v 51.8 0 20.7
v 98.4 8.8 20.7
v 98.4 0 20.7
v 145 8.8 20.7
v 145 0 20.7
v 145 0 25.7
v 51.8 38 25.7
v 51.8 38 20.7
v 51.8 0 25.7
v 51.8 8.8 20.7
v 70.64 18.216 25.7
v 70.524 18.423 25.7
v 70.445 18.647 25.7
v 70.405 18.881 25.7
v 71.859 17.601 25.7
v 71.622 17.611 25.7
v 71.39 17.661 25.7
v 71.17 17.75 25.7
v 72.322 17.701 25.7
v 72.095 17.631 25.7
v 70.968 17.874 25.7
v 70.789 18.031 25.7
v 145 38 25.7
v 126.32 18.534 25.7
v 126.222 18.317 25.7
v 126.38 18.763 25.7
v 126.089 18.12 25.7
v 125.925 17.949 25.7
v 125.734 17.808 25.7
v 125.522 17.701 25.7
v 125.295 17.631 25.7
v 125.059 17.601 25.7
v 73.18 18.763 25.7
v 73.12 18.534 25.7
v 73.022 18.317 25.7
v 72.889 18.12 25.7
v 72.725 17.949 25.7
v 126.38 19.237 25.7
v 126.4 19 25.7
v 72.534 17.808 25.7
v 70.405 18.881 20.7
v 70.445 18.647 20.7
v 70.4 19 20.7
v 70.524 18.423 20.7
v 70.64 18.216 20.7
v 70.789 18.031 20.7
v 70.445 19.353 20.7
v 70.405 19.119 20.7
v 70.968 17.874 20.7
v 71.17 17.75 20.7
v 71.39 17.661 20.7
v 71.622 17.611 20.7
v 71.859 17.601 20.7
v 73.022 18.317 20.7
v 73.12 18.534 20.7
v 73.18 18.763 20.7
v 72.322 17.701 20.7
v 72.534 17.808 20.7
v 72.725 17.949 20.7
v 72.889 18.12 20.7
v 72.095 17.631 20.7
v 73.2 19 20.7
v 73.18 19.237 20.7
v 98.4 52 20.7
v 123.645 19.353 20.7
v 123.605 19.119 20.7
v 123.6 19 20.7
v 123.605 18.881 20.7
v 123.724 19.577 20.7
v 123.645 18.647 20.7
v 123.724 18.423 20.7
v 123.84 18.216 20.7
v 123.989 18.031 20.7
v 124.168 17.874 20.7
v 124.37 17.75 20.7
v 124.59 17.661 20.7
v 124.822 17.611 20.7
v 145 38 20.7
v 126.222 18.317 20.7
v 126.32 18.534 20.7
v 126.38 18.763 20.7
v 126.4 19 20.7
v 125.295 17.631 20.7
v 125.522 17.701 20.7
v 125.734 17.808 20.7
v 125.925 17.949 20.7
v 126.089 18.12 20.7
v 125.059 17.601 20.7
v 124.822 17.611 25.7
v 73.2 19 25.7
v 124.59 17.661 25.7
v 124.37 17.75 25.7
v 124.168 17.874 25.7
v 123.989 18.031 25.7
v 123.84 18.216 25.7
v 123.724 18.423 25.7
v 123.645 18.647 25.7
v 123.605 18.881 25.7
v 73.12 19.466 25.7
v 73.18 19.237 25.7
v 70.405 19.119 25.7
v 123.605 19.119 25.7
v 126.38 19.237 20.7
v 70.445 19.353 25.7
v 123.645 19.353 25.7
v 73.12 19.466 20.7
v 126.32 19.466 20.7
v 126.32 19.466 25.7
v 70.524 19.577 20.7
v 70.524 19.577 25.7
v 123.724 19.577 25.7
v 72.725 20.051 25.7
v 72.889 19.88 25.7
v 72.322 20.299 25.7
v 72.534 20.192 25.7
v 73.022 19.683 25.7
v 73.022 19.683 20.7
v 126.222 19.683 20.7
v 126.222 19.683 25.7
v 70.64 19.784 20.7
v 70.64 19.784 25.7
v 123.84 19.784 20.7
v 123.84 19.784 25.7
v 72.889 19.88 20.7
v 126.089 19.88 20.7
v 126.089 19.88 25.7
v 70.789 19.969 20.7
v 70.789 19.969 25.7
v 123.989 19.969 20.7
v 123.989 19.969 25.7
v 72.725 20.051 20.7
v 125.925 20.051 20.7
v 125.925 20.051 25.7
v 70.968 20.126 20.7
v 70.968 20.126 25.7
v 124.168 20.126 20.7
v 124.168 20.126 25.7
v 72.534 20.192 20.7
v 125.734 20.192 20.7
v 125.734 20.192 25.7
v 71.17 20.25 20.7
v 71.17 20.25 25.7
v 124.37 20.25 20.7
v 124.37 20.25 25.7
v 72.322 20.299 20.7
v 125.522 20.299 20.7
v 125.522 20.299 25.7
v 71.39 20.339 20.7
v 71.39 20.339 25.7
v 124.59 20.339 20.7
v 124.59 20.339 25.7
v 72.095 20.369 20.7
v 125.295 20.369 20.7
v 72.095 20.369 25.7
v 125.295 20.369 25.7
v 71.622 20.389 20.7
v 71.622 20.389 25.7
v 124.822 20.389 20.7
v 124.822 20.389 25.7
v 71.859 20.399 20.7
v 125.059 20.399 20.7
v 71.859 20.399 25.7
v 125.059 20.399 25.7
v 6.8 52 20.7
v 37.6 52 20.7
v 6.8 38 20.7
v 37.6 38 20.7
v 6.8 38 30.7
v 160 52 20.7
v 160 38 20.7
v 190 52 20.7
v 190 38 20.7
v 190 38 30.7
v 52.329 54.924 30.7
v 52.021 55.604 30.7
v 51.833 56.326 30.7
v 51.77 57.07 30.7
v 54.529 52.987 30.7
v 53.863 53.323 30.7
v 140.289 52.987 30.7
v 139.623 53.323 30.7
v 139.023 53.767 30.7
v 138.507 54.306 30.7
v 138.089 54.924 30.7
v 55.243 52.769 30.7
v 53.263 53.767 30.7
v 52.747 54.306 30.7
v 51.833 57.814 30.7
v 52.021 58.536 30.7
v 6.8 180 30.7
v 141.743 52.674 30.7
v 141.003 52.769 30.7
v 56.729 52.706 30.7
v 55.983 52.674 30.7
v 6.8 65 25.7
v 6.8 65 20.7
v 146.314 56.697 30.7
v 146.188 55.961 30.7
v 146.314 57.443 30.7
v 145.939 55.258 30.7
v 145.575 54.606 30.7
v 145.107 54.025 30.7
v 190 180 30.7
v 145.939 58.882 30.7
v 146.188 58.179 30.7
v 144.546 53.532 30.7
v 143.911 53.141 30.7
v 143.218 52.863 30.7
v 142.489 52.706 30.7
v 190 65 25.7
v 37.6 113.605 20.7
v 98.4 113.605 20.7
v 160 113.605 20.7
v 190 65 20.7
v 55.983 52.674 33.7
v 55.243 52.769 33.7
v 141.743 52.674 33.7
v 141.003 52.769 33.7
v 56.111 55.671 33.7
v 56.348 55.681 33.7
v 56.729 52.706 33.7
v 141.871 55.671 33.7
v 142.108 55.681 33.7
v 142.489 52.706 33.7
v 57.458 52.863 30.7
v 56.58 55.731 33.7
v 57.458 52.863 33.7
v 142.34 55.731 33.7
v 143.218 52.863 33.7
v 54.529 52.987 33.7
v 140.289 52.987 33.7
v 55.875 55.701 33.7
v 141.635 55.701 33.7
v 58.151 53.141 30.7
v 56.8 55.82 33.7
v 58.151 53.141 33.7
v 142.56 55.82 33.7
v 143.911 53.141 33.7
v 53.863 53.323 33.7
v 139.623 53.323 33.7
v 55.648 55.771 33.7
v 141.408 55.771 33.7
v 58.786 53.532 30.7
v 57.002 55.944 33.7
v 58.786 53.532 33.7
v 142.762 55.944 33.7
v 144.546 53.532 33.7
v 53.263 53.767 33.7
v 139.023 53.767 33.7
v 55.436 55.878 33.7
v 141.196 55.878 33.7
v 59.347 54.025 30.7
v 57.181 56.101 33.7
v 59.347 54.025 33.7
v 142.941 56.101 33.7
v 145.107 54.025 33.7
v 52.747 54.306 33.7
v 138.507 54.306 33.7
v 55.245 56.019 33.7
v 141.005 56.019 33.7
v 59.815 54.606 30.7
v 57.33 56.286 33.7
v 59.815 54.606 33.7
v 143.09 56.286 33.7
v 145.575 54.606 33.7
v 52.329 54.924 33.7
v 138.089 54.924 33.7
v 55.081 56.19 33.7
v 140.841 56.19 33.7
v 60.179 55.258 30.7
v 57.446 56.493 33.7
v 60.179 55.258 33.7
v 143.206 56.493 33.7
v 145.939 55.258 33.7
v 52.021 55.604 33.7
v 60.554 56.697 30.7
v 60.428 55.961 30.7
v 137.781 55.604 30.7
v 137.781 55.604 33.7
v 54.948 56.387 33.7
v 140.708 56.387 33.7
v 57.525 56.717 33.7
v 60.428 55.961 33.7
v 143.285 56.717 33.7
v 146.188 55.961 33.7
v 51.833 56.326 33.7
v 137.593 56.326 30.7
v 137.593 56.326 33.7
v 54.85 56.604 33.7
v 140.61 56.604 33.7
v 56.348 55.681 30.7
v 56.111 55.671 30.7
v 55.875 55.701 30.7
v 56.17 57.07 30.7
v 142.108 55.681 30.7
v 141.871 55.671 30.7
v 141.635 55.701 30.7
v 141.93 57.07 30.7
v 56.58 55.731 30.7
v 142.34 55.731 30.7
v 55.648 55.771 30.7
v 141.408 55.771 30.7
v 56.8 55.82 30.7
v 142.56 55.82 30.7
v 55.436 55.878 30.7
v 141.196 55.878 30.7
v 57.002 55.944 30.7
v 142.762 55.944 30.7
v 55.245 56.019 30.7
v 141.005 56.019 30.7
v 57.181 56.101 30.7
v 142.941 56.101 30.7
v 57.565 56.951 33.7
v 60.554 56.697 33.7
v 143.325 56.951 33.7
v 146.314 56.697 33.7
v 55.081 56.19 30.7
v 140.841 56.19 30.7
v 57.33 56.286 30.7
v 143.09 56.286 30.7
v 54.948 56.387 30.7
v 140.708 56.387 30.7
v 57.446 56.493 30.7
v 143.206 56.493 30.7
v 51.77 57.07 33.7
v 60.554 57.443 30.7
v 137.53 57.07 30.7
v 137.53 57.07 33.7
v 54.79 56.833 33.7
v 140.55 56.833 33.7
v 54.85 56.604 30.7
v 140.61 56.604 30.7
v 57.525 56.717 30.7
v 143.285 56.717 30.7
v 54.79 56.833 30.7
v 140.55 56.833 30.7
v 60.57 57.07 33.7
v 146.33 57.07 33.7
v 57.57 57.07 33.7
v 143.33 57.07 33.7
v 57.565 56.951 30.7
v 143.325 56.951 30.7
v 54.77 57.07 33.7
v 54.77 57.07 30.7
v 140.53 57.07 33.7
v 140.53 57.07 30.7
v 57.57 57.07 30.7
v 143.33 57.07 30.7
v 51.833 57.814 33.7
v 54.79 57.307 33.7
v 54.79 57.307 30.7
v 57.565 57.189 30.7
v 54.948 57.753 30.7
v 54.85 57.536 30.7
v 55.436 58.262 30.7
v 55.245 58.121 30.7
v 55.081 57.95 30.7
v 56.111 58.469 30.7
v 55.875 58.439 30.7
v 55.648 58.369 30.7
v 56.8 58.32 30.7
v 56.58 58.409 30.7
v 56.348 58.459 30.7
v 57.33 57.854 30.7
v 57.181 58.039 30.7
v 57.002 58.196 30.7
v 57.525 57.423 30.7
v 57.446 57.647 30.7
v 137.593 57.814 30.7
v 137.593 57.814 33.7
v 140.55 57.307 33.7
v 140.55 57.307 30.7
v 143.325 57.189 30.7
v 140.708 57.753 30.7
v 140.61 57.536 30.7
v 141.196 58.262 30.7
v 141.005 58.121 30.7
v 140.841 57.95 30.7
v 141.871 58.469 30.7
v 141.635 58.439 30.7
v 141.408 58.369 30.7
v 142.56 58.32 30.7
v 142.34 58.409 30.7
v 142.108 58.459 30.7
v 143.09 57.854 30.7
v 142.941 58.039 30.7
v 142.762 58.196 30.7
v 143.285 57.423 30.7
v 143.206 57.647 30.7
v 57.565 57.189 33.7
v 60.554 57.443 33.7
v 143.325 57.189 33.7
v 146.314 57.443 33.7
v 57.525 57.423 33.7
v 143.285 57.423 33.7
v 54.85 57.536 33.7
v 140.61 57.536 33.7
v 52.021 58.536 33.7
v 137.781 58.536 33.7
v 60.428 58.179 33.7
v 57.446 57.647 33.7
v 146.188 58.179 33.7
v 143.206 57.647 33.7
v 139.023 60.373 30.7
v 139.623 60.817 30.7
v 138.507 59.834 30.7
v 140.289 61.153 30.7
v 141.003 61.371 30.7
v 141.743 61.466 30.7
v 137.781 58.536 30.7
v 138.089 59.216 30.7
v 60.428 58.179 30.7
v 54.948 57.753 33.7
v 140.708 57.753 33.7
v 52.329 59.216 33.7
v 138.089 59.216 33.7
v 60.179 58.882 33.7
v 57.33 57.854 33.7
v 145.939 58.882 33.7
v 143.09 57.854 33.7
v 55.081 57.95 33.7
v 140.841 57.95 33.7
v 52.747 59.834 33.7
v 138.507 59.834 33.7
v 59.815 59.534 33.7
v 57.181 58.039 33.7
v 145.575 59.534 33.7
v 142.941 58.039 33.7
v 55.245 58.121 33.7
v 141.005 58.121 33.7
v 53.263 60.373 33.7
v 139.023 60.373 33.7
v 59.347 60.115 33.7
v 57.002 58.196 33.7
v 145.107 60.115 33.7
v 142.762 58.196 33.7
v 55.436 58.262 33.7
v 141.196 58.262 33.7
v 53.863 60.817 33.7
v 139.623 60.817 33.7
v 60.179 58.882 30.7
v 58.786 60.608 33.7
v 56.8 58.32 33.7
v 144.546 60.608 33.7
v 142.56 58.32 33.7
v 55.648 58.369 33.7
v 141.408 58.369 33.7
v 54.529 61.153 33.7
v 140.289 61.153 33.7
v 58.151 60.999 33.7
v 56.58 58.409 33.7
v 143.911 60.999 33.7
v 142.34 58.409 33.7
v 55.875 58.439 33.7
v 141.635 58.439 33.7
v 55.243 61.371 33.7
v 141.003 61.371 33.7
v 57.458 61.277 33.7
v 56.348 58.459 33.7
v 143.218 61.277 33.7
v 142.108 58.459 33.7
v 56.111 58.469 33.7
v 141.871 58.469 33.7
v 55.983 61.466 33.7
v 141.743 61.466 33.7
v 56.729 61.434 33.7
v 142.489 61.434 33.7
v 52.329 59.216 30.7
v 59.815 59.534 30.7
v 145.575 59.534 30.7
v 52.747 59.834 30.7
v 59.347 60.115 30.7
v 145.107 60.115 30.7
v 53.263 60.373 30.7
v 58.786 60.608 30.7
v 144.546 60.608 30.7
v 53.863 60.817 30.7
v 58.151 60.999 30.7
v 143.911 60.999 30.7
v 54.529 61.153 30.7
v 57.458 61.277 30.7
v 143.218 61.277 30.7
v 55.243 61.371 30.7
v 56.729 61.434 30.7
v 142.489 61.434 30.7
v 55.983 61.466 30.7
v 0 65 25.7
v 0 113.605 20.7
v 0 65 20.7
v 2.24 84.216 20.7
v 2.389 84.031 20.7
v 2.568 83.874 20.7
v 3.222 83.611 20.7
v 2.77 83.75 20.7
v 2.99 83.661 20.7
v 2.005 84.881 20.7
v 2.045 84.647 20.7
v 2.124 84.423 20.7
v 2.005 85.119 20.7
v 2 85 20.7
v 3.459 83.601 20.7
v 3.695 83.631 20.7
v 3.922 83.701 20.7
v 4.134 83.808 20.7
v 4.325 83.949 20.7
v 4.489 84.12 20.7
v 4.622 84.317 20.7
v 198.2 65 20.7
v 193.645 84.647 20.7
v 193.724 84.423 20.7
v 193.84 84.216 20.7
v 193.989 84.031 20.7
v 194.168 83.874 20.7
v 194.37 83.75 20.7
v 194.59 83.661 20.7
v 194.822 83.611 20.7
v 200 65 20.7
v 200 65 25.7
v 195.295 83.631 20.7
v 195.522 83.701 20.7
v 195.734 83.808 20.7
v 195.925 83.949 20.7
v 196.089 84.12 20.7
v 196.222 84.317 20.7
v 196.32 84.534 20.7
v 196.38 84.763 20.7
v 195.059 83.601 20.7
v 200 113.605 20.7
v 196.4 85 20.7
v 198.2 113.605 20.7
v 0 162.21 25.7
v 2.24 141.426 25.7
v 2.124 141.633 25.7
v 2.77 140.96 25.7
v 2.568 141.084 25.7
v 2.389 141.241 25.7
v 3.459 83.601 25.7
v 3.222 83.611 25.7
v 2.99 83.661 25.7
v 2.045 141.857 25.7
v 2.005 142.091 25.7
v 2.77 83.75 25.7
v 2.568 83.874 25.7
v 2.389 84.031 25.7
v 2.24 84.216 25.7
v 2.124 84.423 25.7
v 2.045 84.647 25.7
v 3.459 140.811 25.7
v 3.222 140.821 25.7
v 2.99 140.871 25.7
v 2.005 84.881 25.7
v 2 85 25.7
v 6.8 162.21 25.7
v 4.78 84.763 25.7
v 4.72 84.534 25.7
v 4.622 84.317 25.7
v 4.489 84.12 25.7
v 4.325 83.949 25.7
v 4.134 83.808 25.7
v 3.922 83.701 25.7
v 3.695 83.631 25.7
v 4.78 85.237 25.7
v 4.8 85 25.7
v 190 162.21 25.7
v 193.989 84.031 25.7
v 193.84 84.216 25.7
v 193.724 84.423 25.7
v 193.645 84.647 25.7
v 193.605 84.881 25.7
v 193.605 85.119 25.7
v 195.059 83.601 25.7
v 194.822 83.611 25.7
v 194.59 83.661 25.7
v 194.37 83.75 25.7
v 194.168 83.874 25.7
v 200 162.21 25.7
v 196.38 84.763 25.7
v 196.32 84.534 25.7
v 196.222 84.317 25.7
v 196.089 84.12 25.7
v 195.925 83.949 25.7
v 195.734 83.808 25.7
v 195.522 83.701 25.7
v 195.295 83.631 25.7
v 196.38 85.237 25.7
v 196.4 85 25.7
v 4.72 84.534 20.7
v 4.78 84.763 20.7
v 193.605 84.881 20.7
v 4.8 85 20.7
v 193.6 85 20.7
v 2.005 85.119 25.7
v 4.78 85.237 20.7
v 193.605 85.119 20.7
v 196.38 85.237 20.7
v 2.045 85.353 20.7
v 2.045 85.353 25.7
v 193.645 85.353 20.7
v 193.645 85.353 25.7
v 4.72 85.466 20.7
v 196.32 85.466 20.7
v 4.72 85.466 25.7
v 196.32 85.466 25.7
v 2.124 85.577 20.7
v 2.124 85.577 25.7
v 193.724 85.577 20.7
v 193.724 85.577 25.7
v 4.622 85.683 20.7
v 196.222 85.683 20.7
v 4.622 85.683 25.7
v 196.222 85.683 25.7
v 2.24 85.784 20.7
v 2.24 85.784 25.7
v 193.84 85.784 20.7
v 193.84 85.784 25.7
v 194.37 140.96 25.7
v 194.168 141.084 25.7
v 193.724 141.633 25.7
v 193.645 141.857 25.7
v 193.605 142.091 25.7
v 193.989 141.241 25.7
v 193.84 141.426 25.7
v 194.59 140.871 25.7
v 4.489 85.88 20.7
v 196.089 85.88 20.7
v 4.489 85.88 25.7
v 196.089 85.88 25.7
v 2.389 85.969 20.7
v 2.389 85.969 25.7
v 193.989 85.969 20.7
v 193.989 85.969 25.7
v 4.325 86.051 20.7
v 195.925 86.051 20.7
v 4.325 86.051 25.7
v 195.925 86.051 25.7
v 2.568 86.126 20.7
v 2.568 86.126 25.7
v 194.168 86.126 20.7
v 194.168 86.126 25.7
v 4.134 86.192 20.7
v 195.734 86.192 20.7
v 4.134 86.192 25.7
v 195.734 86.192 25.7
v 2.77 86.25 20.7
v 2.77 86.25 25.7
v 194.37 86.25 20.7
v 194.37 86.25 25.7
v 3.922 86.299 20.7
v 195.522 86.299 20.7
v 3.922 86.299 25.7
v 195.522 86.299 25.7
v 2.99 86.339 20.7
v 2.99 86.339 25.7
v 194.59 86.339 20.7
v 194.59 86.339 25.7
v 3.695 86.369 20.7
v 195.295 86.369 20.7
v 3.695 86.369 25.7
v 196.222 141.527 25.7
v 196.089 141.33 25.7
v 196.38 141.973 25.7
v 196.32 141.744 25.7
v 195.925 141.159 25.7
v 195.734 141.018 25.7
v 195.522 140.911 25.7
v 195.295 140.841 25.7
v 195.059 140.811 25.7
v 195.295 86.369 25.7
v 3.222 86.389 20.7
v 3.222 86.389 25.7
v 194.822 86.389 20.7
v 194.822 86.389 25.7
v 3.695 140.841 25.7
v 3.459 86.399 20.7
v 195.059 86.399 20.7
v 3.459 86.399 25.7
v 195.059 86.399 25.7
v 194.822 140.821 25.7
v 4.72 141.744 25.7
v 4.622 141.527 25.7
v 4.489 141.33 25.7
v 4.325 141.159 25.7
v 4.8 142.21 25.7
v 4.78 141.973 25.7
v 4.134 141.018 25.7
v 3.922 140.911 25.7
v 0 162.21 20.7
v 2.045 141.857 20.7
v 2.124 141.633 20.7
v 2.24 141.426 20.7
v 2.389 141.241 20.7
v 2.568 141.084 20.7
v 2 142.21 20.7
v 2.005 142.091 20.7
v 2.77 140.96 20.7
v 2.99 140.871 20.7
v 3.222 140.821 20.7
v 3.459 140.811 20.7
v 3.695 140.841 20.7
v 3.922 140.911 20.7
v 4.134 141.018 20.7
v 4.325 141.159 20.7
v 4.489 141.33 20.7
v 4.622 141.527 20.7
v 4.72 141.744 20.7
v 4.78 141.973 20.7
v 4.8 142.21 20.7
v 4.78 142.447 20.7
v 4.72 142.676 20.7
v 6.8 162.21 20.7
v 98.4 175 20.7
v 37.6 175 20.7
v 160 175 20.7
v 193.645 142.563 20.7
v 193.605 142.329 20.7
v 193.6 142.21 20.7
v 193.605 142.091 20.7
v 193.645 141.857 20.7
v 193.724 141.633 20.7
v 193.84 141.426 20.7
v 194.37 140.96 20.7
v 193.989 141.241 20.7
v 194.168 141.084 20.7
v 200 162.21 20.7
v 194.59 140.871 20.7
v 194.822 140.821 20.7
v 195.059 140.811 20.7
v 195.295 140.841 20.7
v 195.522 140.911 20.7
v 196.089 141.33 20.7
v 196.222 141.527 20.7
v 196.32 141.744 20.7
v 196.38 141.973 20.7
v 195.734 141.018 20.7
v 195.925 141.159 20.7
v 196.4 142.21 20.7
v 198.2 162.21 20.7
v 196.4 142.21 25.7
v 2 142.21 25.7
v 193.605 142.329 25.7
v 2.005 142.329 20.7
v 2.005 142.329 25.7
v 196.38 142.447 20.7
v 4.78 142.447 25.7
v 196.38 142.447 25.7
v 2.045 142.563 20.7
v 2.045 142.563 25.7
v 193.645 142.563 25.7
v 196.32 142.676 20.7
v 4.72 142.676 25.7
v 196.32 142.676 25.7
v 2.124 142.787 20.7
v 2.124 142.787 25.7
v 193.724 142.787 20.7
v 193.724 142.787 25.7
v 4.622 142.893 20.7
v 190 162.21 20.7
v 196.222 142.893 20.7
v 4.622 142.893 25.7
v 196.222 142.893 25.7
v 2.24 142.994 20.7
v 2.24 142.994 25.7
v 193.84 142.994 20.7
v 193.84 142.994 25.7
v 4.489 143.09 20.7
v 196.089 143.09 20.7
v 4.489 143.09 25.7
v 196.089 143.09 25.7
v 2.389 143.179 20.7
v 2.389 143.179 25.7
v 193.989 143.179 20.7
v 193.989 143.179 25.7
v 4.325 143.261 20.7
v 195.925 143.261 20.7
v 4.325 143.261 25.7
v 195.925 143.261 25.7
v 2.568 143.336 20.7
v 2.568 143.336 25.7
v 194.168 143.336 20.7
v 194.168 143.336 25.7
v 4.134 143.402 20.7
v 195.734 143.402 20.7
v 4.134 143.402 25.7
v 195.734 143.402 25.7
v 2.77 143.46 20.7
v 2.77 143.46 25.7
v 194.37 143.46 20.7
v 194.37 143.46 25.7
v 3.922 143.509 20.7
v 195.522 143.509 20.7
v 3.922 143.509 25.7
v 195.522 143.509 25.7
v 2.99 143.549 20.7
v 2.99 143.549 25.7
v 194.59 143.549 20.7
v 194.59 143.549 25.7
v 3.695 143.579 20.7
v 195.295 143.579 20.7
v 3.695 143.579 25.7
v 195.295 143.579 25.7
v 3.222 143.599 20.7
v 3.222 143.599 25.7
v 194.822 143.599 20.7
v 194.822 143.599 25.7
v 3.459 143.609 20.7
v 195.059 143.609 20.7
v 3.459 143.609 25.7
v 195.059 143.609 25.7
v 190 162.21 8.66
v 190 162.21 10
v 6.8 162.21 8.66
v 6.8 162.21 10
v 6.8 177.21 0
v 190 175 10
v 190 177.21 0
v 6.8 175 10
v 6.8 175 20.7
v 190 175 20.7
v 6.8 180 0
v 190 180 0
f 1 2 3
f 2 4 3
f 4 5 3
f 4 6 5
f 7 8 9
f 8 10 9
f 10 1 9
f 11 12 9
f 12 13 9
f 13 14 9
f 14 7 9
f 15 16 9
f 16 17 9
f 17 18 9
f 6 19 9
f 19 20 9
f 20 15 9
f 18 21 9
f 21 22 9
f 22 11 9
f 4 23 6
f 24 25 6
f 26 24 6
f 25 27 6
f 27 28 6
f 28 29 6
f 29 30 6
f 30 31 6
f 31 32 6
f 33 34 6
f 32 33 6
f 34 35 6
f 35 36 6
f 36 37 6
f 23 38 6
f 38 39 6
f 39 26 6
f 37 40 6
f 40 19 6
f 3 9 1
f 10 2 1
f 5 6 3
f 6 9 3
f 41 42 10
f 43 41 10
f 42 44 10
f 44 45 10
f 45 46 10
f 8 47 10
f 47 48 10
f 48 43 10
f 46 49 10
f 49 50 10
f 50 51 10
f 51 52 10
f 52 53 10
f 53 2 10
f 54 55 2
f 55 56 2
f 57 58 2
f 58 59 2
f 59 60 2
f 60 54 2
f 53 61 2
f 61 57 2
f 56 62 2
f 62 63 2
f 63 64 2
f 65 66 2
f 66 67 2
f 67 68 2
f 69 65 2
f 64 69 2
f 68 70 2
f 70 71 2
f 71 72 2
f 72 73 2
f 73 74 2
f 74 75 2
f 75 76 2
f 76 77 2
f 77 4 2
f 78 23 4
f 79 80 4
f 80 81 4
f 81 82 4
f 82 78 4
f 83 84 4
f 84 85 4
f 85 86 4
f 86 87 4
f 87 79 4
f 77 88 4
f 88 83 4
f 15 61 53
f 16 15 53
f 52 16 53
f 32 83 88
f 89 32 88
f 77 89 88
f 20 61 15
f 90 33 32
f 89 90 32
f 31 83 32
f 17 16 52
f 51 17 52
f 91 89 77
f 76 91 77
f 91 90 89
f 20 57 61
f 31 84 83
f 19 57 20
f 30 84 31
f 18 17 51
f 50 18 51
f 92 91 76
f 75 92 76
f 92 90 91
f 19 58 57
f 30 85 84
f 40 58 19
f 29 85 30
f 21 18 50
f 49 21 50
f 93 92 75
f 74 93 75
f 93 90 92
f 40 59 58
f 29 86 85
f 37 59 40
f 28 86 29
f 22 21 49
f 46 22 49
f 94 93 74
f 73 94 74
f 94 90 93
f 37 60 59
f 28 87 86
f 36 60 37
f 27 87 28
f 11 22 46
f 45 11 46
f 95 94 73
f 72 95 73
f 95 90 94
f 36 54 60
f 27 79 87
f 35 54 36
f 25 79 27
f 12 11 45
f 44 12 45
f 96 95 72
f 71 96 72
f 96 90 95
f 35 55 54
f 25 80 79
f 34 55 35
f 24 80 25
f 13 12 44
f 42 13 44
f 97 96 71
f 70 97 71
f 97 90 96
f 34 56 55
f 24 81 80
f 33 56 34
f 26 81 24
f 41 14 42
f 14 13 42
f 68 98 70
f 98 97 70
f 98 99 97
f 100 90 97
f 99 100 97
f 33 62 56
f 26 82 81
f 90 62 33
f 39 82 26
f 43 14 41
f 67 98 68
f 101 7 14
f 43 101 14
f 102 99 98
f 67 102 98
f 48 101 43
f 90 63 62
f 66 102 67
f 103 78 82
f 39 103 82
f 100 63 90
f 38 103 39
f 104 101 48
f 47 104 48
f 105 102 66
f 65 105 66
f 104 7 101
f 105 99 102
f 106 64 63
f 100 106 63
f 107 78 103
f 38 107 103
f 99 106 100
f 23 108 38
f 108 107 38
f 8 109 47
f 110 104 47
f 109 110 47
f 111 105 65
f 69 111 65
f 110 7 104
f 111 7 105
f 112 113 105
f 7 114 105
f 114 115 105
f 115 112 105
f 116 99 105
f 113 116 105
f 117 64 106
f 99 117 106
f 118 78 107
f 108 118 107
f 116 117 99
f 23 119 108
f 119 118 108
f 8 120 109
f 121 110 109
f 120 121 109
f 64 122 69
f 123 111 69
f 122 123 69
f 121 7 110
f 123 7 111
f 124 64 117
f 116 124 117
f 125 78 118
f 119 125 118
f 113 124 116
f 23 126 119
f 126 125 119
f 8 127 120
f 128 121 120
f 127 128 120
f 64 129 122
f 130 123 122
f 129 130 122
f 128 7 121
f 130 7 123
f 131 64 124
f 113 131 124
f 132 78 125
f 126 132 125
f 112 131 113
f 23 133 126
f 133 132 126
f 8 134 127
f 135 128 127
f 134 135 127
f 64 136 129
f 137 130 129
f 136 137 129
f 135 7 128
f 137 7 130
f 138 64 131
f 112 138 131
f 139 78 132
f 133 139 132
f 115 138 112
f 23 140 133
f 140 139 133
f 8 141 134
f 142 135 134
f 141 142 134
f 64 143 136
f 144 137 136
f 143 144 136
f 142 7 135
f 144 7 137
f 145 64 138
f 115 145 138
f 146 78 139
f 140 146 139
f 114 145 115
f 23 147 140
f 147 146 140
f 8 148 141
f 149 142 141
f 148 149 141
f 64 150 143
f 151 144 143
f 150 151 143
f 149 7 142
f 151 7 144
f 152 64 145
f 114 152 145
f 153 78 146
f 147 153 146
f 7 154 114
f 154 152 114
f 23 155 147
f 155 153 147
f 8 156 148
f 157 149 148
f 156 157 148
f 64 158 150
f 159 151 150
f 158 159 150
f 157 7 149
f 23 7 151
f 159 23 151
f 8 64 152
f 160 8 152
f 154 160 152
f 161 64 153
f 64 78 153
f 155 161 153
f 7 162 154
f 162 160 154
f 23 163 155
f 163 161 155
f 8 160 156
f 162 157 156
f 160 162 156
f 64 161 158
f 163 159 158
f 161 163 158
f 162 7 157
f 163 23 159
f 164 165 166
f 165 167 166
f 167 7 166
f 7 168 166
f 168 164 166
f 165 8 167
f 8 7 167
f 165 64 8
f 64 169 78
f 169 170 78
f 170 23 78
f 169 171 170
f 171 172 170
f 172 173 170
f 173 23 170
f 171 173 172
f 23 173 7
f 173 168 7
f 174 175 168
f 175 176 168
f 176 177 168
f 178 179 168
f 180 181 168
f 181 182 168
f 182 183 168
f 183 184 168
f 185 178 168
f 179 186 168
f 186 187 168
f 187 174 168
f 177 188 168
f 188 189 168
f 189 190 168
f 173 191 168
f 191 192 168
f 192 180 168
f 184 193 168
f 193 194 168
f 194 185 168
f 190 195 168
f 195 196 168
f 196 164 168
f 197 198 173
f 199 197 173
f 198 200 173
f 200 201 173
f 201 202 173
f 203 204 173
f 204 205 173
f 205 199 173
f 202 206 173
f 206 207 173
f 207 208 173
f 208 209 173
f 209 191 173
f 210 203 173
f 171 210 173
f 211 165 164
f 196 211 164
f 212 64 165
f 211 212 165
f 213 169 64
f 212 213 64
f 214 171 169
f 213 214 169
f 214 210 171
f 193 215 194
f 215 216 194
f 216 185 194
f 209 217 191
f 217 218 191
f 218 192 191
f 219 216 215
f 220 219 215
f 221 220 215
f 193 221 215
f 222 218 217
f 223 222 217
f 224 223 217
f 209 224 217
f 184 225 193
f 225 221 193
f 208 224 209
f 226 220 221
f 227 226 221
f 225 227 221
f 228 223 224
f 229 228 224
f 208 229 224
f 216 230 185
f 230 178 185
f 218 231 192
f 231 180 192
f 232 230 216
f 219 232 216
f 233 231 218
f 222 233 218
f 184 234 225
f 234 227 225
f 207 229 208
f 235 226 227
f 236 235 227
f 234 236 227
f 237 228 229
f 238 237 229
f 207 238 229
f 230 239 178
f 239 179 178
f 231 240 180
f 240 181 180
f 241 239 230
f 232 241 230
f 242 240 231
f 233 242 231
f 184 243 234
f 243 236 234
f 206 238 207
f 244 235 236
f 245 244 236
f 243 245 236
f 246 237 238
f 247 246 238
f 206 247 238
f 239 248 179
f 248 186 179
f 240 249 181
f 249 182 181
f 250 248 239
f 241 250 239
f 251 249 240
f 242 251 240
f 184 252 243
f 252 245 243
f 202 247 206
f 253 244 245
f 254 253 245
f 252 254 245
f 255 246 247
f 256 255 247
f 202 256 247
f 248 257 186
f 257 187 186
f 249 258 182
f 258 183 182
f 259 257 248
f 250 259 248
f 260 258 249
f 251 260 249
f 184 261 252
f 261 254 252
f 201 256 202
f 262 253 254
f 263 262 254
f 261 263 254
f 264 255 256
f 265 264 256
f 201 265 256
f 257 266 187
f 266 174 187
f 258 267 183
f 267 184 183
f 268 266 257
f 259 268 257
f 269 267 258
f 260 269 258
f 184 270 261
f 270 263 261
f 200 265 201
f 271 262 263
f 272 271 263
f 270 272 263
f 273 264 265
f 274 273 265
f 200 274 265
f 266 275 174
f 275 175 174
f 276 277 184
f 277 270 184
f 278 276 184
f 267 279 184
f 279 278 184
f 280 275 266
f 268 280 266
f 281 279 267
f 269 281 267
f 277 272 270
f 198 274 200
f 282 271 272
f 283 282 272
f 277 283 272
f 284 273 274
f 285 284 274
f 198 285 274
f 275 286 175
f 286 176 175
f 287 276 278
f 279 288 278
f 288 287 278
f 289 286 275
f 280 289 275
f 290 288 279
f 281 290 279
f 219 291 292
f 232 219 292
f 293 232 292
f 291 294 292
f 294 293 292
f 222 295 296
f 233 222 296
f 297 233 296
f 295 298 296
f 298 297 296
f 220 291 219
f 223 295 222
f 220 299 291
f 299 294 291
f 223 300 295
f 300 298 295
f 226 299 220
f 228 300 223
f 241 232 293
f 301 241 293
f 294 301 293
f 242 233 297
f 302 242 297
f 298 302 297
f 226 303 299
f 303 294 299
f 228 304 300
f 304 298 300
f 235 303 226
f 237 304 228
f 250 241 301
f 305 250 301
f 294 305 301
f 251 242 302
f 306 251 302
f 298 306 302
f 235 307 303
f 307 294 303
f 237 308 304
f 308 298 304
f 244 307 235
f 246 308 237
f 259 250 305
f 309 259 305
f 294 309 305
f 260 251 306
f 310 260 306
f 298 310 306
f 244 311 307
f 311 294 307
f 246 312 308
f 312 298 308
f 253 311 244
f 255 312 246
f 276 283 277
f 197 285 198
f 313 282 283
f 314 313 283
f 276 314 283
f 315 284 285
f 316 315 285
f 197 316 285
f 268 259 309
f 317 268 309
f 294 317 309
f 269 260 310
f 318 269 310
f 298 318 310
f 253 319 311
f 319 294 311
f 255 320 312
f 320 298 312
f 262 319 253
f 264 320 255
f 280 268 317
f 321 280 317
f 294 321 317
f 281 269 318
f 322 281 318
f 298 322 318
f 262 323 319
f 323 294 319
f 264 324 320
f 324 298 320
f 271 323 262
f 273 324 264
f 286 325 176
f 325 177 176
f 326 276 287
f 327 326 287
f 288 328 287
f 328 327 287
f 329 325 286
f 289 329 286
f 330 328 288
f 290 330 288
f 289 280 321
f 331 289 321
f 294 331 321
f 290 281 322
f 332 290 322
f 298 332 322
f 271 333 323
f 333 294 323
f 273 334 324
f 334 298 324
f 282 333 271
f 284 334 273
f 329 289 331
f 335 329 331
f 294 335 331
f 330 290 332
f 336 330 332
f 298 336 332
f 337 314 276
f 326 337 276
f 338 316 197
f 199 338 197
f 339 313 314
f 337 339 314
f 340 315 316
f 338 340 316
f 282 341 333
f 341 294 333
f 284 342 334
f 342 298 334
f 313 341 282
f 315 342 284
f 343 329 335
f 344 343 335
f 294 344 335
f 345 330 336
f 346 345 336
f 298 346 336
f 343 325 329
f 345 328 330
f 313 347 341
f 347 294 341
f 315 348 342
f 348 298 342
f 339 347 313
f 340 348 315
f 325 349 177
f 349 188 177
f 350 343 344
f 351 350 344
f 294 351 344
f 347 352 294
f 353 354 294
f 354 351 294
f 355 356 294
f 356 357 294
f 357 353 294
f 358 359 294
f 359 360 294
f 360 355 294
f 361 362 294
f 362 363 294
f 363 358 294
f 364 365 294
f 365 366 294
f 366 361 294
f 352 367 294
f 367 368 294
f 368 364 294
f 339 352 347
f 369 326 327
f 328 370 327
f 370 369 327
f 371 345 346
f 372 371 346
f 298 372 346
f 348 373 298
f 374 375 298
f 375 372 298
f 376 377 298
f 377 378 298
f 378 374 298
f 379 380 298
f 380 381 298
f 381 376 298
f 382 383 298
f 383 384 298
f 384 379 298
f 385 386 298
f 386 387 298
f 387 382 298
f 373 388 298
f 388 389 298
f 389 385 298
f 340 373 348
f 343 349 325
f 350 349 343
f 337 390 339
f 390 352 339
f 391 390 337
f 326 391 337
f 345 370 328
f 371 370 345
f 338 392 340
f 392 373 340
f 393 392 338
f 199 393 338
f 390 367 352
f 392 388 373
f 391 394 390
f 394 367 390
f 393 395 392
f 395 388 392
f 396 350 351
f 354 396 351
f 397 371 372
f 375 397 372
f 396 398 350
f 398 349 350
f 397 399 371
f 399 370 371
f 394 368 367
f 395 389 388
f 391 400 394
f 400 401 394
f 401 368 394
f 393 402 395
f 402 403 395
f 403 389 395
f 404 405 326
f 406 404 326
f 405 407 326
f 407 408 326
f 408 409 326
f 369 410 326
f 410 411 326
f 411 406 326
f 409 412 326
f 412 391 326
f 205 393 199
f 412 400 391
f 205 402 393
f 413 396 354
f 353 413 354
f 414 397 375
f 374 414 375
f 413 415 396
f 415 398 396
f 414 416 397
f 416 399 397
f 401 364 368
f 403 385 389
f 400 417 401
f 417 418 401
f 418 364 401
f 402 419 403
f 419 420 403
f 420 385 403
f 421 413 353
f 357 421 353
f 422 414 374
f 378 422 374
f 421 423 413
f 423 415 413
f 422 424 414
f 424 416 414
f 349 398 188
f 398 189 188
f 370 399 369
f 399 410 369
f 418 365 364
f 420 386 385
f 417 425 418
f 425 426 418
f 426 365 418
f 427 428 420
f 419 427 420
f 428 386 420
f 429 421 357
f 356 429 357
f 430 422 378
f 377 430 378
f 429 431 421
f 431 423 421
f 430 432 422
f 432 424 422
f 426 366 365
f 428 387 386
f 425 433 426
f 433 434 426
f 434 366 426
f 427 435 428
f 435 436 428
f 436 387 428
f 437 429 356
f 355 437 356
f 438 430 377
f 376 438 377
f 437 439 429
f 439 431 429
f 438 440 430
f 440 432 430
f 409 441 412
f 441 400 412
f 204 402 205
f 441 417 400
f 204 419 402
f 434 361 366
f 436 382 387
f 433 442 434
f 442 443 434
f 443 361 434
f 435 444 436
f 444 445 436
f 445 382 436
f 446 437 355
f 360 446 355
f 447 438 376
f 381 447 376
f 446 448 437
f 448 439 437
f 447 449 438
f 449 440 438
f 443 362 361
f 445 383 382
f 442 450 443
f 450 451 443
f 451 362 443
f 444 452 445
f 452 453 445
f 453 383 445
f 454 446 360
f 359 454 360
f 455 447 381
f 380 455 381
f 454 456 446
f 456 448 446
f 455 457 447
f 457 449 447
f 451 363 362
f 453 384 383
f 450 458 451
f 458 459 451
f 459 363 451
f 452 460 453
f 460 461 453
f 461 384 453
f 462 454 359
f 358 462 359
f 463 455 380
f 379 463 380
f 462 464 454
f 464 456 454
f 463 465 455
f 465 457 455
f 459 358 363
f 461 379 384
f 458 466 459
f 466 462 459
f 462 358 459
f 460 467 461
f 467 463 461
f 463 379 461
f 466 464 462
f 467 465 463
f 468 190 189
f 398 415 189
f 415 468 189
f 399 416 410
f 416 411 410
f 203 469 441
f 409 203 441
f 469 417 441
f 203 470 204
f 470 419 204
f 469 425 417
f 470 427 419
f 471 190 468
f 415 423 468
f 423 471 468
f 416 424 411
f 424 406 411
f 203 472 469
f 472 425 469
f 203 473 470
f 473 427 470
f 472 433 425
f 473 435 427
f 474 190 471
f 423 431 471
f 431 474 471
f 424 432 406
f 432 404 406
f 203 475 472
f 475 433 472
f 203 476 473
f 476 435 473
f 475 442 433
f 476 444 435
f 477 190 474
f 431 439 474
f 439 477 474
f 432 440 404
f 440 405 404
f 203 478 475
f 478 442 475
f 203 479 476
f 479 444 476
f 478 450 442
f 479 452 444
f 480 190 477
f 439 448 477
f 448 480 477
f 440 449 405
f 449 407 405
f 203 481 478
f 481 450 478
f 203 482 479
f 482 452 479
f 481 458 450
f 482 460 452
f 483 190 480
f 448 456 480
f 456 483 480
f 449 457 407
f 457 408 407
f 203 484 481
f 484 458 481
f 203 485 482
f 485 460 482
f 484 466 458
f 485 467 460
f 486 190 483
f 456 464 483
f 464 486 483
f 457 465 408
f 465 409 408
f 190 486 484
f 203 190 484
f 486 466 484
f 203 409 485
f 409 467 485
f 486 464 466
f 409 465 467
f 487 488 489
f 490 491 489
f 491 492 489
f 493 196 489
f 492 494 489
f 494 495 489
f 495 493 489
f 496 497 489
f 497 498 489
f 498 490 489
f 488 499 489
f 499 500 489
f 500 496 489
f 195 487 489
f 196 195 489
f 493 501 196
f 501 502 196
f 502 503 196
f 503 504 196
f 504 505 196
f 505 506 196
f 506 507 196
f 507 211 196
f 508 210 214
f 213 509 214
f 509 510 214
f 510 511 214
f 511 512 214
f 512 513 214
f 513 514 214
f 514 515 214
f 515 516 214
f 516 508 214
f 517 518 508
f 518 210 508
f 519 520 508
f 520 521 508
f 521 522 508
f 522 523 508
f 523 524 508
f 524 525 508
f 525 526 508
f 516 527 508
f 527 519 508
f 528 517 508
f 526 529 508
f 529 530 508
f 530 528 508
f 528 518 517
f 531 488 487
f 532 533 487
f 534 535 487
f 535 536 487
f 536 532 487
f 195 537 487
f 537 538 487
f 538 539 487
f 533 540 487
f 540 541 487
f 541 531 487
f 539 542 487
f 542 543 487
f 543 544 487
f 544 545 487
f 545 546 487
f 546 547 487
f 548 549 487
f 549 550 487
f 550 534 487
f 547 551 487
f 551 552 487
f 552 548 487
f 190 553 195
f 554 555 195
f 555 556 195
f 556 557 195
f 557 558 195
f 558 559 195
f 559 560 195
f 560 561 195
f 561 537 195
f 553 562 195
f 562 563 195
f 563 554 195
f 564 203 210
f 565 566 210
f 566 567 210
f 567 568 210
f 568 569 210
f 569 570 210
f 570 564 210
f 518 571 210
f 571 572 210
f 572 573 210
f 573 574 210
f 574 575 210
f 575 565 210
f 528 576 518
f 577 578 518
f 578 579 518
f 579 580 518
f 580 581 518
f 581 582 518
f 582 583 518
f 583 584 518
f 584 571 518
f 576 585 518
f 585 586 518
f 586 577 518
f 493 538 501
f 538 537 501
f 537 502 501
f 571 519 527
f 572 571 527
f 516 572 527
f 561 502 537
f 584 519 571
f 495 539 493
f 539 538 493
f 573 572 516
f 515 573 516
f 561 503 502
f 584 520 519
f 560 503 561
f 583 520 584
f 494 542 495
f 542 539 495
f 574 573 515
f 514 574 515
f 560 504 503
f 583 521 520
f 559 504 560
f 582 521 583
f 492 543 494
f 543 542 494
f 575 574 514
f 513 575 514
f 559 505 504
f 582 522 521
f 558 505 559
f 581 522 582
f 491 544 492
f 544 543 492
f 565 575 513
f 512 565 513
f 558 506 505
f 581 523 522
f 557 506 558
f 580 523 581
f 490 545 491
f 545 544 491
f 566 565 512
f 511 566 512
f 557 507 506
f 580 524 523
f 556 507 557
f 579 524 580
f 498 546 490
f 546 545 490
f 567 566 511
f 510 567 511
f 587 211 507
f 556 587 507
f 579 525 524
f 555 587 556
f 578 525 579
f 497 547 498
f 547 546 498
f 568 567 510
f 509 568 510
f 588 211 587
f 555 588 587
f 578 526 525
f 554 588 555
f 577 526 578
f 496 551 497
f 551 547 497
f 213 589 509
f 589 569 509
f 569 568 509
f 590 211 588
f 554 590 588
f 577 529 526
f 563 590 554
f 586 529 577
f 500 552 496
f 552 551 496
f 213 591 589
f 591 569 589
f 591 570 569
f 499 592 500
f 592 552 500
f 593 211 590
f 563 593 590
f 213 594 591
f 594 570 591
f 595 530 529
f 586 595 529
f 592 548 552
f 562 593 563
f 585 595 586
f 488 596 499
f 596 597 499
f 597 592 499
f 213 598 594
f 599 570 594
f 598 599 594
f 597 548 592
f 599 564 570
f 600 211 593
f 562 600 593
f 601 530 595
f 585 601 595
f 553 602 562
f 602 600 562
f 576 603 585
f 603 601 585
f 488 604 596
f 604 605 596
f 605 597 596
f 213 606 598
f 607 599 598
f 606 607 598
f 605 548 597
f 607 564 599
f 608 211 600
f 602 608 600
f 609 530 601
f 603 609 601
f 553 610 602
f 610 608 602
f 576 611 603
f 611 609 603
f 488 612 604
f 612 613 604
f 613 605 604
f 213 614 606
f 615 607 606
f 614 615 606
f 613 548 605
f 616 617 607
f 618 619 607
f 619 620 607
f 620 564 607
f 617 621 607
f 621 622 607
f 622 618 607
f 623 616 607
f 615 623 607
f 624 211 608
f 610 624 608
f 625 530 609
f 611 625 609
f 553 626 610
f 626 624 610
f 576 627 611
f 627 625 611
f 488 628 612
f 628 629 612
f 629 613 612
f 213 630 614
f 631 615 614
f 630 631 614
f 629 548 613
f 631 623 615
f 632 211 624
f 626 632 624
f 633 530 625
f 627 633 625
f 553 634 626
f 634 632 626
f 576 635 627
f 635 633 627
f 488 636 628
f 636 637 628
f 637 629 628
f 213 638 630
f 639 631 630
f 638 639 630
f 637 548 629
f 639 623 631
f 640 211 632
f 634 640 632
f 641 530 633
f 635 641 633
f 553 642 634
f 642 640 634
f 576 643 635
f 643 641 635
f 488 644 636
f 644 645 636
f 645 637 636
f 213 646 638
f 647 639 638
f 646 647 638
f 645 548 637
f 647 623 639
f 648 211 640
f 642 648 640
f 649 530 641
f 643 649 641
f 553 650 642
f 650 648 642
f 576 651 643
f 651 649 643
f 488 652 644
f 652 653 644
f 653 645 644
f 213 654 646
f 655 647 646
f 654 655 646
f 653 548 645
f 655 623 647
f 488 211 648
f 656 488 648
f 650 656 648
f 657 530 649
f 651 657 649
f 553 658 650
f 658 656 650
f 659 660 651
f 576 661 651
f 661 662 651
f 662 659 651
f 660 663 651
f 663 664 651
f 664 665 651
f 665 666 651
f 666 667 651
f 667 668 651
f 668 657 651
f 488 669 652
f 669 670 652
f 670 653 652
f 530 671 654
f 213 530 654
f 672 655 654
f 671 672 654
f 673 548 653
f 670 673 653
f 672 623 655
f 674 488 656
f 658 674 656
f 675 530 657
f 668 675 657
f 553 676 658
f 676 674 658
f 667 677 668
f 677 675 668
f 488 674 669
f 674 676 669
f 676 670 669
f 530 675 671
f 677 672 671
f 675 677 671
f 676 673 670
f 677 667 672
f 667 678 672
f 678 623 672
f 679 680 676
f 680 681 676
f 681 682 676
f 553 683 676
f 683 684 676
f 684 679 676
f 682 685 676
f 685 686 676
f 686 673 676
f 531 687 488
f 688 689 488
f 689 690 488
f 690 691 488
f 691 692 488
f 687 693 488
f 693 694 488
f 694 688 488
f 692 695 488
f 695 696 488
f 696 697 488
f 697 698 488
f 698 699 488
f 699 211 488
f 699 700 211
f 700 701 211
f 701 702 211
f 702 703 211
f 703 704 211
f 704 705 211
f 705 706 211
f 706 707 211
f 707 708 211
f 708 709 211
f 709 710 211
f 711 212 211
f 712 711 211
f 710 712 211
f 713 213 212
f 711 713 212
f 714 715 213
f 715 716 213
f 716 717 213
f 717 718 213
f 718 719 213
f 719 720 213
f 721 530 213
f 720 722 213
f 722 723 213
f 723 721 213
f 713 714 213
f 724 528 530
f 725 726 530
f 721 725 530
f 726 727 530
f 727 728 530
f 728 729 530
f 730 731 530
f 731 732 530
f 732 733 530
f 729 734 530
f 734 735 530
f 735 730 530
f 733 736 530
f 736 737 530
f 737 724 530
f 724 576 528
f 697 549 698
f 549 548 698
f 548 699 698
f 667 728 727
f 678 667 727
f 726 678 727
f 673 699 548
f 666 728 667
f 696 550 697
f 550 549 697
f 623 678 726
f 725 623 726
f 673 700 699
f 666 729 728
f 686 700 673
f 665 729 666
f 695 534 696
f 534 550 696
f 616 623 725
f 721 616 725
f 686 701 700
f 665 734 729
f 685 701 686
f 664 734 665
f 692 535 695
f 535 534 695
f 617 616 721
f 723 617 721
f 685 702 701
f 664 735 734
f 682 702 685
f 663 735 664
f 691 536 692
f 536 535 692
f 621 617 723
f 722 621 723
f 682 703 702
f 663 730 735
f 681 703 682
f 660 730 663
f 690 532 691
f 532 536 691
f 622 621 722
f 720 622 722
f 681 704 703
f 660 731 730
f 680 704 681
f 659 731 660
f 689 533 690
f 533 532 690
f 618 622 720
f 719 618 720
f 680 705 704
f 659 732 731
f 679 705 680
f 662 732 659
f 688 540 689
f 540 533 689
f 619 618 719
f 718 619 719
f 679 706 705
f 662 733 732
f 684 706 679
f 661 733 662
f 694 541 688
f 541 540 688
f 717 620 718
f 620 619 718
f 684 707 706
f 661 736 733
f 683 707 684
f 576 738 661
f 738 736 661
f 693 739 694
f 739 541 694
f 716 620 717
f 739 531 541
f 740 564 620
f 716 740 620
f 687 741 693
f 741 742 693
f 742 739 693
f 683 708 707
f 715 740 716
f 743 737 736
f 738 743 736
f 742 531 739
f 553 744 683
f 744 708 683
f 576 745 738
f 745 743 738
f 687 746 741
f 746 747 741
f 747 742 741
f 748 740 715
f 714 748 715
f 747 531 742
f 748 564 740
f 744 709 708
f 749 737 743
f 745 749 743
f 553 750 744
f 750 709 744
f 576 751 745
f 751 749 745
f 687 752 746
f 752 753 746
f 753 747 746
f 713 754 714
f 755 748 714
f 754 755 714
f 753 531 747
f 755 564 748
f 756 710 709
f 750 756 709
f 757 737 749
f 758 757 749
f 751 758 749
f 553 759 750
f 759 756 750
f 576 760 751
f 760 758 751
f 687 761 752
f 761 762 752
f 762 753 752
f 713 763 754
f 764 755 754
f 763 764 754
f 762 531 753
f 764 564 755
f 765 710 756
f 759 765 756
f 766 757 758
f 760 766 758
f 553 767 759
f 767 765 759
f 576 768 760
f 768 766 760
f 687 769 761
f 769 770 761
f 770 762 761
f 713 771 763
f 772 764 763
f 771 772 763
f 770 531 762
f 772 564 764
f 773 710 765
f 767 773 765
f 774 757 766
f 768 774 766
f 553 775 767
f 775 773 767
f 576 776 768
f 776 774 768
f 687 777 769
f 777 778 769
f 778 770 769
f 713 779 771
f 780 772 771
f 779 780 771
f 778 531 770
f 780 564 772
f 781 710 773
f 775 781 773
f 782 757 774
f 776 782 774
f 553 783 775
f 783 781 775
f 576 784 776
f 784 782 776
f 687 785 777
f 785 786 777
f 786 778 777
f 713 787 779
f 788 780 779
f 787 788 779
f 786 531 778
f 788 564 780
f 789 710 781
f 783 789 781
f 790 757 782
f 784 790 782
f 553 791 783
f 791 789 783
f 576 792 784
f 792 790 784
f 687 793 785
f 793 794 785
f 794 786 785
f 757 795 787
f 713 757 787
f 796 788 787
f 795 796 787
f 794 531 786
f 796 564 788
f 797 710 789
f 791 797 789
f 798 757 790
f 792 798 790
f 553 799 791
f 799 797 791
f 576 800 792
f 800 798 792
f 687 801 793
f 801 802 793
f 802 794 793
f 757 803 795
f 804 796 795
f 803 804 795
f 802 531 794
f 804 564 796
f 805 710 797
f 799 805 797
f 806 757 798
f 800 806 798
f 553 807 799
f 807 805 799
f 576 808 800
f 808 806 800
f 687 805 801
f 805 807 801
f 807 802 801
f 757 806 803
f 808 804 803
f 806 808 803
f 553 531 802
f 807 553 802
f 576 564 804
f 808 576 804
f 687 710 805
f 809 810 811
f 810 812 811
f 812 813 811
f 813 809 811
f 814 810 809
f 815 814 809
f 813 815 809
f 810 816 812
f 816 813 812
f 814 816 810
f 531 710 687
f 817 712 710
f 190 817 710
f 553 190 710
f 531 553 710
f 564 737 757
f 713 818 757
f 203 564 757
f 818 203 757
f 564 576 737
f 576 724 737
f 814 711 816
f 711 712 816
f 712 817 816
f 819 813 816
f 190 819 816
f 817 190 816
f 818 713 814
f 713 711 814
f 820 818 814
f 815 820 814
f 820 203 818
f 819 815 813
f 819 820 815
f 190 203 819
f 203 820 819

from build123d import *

# Parameters (mm, degrees)
CROQUIS1_W              = 180
CROQUIS1_H              = 180
SALIENTE_EXTRUIR1_DEPTH = 30.7
CROQUIS2_W              = 180
CROQUIS2_H              = 162.21
CORTAR_EXTRUIR1_DEPTH   = 20.7
CROQUIS3_W              = 10.7
CROQUIS3_H              = 12.79
CORTAR_EXTRUIR2_DEPTH   = 274.7
SALIENTE_EXTRUIR2_DEPTH = 20
CROQUIS5_W              = 10
CROQUIS5_H              = 17.79
CROQUIS5_W_2            = 6.8
CORTAR_EXTRUIR3_DEPTH   = 30.7
CROQUIS6_W              = 6.8
CROQUIS6_H              = 97.21
CROQUIS6_W_2            = 10
CROQUIS6_W_3            = 93.2
CROQUIS6_H_2            = 38
CORTAR_EXTRUIR4_DEPTH   = 5
CHAFL_N1_SIZE           = 15
CHAFL_N1_SIZE2          = 8.660254038
CROQUIS7_R              = 1.4
CORTAR_EXTRUIR5_DEPTH   = 20
CROQUIS8_R              = 4.4
CROQUIS8_R_2            = 1.4
SALIENTE_EXTRUIR3_DEPTH = 3


with BuildPart() as part:
    # Croquis1 → Saliente-Extruir1 (new body)
    with BuildSketch(Plane.XY):
        with Locations((90, 90)):
            Rectangle(CROQUIS1_W, CROQUIS1_H)
    extrude(amount=SALIENTE_EXTRUIR1_DEPTH)

    # Croquis2 → Cortar-Extruir1 (cut)
    with BuildSketch(Plane(origin=(0, 0, 0), x_dir=(-1, 0, 0), z_dir=(0, 0, -1))):
        with Locations((-90, 81.105)):
            Rectangle(CROQUIS2_W, CROQUIS2_H)
    extrude(amount=-CORTAR_EXTRUIR1_DEPTH, mode=Mode.SUBTRACT)

    # Croquis3 → Cortar-Extruir2 (cut)
    with BuildSketch(Plane.ZY):
        with Locations((15.35, 168.605)):
            Rectangle(CROQUIS3_W, CROQUIS3_H)
    extrude(amount=-CORTAR_EXTRUIR2_DEPTH, mode=Mode.SUBTRACT)

    # Croquis4 → Saliente-Extruir2 (add)
    with BuildSketch(Plane(origin=(180, 0, 0), x_dir=(0, 0, -1), z_dir=(1, 0, 0))):
        Polygon((-20.7, 0), (-20.7, 175), (-10, 175), (-10, 162.21), (0, 162.21), (0, 180), (-30.7, 180), (-30.7, 0), align=None)
    extrude(amount=SALIENTE_EXTRUIR2_DEPTH)

    # Croquis5 → Cortar-Extruir3 (cut)
    with BuildSketch(Plane.XY.offset(30.7)):
        Polygon((0, 0), (6.8, 0), (51.8, 0), (51.8, 38), (6.8, 38), (6.8, 65), (0, 65), align=None)
        Polygon((200, 0), (190, 0), (145, 0), (145, 38), (190, 38), (190, 65), (200, 65), align=None)
        with Locations((195, 171.105)):
            Rectangle(CROQUIS5_W, CROQUIS5_H)
        with Locations((3.4, 171.105)):
            Rectangle(CROQUIS5_W_2, CROQUIS5_H)
    extrude(amount=-CORTAR_EXTRUIR3_DEPTH, mode=Mode.SUBTRACT)

    # Croquis6 → Cortar-Extruir4 (cut)
    with BuildSketch(Plane.XY.offset(30.7)):
        with Locations((3.4, 113.605)):
            Rectangle(CROQUIS6_W, CROQUIS6_H)
        with Locations((195, 113.605)):
            Rectangle(CROQUIS6_W_2, CROQUIS6_H)
        with Locations((98.4, 19)):
            Rectangle(CROQUIS6_W_3, CROQUIS6_H_2)
    extrude(amount=-CORTAR_EXTRUIR4_DEPTH, mode=Mode.SUBTRACT)

    # Chaflán1
    chafl_n1_edges = [part.edges().sort_by_distance(p)[0] for p in [
        (98.4, 162.21, 0),
    ]]
    chafl_n1_side = [part.faces().sort_by_distance(p)[0] for p in [
        (98.4, 171.105, 0),
    ]]
    chamfer(chafl_n1_edges, length=CHAFL_N1_SIZE, length2=CHAFL_N1_SIZE2, reference=chafl_n1_side[0])

    # Croquis7 → Cortar-Extruir5 (cut)
    with BuildSketch(Plane.XY.offset(30.7)):
        with Locations((125, 19)):
            Circle(CROQUIS7_R)
        with Locations((71.8, 19)):
            Circle(CROQUIS7_R)
        with Locations((195, 85)):
            Circle(CROQUIS7_R)
        with Locations((195, 142.21)):
            Circle(CROQUIS7_R)
        with Locations(Location((3.4, 142.21, 0), (0, 0, 180))):
            Circle(CROQUIS7_R)
        with Locations(Location((3.4, 85, 0), (0, 0, 180))):
            Circle(CROQUIS7_R)
    extrude(amount=-CORTAR_EXTRUIR5_DEPTH, mode=Mode.SUBTRACT)

    # Croquis8 → Saliente-Extruir3 (add)
    # profile 1 of 2: a face of its own
    with BuildSketch(Plane.XY.offset(30.7)):
        with Locations(Location((56.17, 57.07, 0), (0, 0, 180))):
            Circle(CROQUIS8_R)
        with Locations((56.17, 57.07)):
            Circle(CROQUIS8_R_2, mode=Mode.SUBTRACT)
    # profile 2 of 2: a face of its own
    with BuildSketch(Plane.XY.offset(30.7)):
        with Locations(Location((141.93, 57.07, 0), (0, 0, 180))):
            Circle(CROQUIS8_R)
        with Locations((141.93, 57.07)):
            Circle(CROQUIS8_R_2, mode=Mode.SUBTRACT)
    extrude(amount=SALIENTE_EXTRUIR3_DEPTH)


solid = part.part
